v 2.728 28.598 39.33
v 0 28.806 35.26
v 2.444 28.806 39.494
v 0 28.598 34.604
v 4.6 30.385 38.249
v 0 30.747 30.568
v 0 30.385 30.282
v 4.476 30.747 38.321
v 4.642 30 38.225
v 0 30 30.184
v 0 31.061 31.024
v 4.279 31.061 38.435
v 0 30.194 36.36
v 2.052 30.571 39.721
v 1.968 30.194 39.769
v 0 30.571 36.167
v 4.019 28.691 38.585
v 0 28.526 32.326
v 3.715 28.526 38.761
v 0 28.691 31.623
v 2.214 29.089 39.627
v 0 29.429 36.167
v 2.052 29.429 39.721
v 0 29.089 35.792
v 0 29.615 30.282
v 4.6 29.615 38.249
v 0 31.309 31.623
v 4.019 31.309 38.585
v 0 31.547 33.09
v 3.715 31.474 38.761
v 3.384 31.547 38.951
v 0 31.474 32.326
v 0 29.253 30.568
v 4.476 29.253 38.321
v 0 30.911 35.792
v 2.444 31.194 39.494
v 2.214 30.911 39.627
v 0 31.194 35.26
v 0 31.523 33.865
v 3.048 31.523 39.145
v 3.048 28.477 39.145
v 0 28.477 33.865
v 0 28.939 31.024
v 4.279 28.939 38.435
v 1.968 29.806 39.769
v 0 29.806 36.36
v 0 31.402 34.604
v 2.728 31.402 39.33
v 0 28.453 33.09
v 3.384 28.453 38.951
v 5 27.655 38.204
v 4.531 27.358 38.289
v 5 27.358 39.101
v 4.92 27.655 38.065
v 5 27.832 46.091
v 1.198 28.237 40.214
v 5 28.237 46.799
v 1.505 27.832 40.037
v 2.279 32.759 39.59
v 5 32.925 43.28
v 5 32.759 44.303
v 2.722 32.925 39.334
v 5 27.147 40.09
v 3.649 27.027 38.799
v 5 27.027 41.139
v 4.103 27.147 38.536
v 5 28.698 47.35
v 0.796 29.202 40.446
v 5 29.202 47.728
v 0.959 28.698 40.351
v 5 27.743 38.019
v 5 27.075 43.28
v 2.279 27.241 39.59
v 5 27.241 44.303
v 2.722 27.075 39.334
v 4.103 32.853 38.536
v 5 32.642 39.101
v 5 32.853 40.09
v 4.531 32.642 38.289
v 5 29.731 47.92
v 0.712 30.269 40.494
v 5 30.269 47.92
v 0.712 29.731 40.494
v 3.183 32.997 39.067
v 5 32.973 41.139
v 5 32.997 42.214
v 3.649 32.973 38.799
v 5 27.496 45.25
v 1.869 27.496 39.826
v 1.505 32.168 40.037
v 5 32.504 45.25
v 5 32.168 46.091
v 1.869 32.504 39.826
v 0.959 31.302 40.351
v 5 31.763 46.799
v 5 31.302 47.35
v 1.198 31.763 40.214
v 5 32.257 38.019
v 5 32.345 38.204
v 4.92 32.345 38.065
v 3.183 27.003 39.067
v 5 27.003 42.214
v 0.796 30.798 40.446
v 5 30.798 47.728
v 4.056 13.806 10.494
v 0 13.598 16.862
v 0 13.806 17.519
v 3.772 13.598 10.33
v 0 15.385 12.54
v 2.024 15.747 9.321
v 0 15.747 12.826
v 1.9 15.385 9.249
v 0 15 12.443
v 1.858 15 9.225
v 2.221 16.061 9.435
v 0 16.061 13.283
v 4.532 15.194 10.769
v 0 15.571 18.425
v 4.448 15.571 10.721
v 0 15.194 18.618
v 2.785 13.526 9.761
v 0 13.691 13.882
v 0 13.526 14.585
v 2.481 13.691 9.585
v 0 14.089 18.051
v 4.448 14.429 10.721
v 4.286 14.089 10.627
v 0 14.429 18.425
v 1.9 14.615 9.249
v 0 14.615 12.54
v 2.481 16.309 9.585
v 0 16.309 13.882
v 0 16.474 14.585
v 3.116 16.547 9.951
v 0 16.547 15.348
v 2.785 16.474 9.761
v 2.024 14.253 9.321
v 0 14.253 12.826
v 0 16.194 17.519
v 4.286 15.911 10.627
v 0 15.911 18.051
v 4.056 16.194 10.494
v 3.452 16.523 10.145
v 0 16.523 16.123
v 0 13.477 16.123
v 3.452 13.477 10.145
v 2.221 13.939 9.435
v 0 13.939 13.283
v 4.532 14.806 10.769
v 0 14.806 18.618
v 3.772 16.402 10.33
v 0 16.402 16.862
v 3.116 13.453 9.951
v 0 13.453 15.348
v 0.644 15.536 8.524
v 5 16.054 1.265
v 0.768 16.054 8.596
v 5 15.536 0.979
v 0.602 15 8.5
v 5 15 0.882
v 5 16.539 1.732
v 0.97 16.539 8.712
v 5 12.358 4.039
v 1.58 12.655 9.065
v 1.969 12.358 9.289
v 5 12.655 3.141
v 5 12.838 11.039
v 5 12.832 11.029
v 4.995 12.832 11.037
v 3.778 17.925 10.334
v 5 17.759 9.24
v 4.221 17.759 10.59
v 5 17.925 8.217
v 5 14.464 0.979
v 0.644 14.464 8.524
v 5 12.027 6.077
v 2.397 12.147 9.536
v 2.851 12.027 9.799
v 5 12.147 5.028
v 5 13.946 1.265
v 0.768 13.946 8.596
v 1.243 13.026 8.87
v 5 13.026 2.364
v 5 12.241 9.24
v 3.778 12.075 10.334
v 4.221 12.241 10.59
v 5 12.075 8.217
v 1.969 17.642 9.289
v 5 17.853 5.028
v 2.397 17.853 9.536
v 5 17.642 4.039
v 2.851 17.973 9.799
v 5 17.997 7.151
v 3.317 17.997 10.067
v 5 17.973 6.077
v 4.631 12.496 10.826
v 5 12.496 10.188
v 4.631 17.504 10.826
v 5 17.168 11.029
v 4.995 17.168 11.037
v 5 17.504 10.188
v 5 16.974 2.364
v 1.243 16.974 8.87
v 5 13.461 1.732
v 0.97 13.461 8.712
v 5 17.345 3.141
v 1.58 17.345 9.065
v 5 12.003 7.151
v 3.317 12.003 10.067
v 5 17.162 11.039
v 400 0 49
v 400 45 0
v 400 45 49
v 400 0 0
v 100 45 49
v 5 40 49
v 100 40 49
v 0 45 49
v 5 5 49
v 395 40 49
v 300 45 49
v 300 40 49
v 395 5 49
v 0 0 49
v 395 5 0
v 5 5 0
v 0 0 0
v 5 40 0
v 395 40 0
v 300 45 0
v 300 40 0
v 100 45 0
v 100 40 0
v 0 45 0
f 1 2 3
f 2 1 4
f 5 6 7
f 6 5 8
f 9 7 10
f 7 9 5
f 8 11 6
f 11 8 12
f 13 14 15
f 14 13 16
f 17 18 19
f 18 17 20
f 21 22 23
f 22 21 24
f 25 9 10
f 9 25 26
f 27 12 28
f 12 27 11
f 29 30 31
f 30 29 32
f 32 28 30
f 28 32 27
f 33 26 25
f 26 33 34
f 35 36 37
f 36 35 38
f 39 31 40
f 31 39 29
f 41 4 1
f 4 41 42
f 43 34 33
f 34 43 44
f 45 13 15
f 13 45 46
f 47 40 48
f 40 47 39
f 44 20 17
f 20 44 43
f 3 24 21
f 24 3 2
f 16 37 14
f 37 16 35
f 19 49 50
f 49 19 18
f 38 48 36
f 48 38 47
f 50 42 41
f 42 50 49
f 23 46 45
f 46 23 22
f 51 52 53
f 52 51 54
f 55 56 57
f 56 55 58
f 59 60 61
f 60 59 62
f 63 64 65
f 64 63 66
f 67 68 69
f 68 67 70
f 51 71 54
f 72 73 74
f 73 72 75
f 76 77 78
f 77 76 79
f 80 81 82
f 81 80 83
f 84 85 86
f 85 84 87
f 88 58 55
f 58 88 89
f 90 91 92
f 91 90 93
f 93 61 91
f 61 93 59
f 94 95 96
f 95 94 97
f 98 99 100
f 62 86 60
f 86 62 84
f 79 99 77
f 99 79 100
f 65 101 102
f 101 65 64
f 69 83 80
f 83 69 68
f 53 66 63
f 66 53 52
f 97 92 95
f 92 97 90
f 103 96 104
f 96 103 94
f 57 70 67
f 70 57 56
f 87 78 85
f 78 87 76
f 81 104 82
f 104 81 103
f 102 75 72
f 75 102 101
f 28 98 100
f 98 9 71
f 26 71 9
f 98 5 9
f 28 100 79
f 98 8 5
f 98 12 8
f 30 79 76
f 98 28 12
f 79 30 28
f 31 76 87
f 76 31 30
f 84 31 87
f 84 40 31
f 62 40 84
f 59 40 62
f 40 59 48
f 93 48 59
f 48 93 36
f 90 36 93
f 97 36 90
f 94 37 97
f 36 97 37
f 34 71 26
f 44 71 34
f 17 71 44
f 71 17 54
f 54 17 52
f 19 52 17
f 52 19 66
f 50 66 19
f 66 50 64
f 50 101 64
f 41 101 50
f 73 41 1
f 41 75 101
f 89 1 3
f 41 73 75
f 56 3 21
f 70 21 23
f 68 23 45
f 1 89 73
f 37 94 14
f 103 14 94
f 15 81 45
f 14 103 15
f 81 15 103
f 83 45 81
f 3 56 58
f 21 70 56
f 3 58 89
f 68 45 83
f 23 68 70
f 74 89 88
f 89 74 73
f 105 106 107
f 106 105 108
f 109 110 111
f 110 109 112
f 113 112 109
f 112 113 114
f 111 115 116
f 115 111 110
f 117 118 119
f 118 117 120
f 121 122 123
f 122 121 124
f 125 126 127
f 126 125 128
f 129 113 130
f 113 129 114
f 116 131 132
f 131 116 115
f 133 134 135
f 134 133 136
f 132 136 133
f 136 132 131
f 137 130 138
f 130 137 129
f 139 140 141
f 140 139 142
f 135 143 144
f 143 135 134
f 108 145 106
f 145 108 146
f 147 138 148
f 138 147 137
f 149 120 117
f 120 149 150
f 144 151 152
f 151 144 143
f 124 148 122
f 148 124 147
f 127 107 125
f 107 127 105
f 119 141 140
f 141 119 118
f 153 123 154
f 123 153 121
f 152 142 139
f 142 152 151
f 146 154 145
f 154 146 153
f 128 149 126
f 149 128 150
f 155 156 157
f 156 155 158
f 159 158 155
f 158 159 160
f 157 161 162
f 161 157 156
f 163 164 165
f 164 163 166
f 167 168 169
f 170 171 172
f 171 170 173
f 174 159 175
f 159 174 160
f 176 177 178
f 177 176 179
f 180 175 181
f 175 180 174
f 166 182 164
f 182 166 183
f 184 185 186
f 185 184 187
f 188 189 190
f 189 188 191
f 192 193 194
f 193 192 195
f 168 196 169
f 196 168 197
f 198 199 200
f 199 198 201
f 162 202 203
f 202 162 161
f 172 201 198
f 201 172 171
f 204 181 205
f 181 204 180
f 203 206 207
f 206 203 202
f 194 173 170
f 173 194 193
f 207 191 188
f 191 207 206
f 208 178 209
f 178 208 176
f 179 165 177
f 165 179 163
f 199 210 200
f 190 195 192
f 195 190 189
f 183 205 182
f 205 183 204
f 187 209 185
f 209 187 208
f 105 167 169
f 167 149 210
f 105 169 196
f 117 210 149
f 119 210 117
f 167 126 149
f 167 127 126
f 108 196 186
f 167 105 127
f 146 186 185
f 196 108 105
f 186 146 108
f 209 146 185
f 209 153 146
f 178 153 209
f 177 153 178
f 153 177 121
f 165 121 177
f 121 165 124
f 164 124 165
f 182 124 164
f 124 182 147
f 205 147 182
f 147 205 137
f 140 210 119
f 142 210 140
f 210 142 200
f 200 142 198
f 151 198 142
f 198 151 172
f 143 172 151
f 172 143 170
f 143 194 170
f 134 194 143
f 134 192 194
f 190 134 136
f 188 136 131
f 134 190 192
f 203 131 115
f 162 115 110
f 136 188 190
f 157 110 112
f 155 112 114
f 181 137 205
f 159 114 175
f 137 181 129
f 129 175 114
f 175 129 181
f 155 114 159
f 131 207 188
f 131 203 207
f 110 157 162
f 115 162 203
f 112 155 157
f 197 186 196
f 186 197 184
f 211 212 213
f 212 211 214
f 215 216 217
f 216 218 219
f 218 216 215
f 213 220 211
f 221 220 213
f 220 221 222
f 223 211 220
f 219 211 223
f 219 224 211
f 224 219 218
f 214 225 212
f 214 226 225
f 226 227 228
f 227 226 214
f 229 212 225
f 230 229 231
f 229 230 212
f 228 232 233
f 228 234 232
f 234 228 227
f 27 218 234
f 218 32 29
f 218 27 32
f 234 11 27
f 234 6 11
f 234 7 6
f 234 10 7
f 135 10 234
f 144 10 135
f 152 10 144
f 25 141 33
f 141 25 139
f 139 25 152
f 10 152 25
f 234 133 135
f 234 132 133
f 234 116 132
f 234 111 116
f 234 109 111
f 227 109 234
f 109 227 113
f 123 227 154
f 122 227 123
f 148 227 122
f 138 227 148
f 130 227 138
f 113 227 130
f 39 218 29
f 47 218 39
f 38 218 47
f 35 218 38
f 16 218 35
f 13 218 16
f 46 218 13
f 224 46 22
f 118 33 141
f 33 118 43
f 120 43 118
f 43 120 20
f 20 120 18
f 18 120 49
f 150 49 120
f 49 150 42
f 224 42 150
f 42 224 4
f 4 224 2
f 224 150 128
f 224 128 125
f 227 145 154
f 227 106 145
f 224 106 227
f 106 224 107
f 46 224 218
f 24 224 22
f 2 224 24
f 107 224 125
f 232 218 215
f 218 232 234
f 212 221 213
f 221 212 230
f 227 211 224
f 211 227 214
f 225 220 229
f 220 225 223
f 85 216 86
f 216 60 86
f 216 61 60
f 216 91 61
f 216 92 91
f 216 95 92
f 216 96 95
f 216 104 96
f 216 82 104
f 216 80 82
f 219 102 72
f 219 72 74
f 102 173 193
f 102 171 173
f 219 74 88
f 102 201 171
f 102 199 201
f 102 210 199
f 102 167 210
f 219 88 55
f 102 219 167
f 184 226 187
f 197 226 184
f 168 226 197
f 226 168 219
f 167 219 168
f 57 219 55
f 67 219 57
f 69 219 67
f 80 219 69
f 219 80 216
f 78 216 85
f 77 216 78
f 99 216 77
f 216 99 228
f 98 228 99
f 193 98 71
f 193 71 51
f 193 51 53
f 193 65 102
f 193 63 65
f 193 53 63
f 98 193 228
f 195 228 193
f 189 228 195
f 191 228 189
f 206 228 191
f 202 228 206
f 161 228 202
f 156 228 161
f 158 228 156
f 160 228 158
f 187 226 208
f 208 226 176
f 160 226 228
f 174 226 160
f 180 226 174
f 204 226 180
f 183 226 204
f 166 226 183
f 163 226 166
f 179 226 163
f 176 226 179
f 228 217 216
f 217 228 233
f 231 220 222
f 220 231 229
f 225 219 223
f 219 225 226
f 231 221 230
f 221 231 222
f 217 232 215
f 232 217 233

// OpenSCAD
x=400;
y=45;
z=49;

difference() {
    cube([x, y, z]);
    color("red")
        translate([5, 5, -5])
        cube([x-10, y-10, z+10]);
    color("red")
        translate([100, 5, -5])
        cube([x-200, y, z+10]);

  color("blue")
  translate([3.3, y/3*2, z-10])
  rotate([0, 30, 0]) {
    cylinder(30, d=3.1, $fn=25, center=true);
    cylinder(15, d=6, $fn=35, center=false);
  }

  color("blue")
  translate([3.2, y/3, 10])
  rotate([0, 150, 0]) {
    cylinder(30, d=3.1, $fn=25, center=true);
    cylinder(15, d=6, $fn=35, center=false);
  }
}
